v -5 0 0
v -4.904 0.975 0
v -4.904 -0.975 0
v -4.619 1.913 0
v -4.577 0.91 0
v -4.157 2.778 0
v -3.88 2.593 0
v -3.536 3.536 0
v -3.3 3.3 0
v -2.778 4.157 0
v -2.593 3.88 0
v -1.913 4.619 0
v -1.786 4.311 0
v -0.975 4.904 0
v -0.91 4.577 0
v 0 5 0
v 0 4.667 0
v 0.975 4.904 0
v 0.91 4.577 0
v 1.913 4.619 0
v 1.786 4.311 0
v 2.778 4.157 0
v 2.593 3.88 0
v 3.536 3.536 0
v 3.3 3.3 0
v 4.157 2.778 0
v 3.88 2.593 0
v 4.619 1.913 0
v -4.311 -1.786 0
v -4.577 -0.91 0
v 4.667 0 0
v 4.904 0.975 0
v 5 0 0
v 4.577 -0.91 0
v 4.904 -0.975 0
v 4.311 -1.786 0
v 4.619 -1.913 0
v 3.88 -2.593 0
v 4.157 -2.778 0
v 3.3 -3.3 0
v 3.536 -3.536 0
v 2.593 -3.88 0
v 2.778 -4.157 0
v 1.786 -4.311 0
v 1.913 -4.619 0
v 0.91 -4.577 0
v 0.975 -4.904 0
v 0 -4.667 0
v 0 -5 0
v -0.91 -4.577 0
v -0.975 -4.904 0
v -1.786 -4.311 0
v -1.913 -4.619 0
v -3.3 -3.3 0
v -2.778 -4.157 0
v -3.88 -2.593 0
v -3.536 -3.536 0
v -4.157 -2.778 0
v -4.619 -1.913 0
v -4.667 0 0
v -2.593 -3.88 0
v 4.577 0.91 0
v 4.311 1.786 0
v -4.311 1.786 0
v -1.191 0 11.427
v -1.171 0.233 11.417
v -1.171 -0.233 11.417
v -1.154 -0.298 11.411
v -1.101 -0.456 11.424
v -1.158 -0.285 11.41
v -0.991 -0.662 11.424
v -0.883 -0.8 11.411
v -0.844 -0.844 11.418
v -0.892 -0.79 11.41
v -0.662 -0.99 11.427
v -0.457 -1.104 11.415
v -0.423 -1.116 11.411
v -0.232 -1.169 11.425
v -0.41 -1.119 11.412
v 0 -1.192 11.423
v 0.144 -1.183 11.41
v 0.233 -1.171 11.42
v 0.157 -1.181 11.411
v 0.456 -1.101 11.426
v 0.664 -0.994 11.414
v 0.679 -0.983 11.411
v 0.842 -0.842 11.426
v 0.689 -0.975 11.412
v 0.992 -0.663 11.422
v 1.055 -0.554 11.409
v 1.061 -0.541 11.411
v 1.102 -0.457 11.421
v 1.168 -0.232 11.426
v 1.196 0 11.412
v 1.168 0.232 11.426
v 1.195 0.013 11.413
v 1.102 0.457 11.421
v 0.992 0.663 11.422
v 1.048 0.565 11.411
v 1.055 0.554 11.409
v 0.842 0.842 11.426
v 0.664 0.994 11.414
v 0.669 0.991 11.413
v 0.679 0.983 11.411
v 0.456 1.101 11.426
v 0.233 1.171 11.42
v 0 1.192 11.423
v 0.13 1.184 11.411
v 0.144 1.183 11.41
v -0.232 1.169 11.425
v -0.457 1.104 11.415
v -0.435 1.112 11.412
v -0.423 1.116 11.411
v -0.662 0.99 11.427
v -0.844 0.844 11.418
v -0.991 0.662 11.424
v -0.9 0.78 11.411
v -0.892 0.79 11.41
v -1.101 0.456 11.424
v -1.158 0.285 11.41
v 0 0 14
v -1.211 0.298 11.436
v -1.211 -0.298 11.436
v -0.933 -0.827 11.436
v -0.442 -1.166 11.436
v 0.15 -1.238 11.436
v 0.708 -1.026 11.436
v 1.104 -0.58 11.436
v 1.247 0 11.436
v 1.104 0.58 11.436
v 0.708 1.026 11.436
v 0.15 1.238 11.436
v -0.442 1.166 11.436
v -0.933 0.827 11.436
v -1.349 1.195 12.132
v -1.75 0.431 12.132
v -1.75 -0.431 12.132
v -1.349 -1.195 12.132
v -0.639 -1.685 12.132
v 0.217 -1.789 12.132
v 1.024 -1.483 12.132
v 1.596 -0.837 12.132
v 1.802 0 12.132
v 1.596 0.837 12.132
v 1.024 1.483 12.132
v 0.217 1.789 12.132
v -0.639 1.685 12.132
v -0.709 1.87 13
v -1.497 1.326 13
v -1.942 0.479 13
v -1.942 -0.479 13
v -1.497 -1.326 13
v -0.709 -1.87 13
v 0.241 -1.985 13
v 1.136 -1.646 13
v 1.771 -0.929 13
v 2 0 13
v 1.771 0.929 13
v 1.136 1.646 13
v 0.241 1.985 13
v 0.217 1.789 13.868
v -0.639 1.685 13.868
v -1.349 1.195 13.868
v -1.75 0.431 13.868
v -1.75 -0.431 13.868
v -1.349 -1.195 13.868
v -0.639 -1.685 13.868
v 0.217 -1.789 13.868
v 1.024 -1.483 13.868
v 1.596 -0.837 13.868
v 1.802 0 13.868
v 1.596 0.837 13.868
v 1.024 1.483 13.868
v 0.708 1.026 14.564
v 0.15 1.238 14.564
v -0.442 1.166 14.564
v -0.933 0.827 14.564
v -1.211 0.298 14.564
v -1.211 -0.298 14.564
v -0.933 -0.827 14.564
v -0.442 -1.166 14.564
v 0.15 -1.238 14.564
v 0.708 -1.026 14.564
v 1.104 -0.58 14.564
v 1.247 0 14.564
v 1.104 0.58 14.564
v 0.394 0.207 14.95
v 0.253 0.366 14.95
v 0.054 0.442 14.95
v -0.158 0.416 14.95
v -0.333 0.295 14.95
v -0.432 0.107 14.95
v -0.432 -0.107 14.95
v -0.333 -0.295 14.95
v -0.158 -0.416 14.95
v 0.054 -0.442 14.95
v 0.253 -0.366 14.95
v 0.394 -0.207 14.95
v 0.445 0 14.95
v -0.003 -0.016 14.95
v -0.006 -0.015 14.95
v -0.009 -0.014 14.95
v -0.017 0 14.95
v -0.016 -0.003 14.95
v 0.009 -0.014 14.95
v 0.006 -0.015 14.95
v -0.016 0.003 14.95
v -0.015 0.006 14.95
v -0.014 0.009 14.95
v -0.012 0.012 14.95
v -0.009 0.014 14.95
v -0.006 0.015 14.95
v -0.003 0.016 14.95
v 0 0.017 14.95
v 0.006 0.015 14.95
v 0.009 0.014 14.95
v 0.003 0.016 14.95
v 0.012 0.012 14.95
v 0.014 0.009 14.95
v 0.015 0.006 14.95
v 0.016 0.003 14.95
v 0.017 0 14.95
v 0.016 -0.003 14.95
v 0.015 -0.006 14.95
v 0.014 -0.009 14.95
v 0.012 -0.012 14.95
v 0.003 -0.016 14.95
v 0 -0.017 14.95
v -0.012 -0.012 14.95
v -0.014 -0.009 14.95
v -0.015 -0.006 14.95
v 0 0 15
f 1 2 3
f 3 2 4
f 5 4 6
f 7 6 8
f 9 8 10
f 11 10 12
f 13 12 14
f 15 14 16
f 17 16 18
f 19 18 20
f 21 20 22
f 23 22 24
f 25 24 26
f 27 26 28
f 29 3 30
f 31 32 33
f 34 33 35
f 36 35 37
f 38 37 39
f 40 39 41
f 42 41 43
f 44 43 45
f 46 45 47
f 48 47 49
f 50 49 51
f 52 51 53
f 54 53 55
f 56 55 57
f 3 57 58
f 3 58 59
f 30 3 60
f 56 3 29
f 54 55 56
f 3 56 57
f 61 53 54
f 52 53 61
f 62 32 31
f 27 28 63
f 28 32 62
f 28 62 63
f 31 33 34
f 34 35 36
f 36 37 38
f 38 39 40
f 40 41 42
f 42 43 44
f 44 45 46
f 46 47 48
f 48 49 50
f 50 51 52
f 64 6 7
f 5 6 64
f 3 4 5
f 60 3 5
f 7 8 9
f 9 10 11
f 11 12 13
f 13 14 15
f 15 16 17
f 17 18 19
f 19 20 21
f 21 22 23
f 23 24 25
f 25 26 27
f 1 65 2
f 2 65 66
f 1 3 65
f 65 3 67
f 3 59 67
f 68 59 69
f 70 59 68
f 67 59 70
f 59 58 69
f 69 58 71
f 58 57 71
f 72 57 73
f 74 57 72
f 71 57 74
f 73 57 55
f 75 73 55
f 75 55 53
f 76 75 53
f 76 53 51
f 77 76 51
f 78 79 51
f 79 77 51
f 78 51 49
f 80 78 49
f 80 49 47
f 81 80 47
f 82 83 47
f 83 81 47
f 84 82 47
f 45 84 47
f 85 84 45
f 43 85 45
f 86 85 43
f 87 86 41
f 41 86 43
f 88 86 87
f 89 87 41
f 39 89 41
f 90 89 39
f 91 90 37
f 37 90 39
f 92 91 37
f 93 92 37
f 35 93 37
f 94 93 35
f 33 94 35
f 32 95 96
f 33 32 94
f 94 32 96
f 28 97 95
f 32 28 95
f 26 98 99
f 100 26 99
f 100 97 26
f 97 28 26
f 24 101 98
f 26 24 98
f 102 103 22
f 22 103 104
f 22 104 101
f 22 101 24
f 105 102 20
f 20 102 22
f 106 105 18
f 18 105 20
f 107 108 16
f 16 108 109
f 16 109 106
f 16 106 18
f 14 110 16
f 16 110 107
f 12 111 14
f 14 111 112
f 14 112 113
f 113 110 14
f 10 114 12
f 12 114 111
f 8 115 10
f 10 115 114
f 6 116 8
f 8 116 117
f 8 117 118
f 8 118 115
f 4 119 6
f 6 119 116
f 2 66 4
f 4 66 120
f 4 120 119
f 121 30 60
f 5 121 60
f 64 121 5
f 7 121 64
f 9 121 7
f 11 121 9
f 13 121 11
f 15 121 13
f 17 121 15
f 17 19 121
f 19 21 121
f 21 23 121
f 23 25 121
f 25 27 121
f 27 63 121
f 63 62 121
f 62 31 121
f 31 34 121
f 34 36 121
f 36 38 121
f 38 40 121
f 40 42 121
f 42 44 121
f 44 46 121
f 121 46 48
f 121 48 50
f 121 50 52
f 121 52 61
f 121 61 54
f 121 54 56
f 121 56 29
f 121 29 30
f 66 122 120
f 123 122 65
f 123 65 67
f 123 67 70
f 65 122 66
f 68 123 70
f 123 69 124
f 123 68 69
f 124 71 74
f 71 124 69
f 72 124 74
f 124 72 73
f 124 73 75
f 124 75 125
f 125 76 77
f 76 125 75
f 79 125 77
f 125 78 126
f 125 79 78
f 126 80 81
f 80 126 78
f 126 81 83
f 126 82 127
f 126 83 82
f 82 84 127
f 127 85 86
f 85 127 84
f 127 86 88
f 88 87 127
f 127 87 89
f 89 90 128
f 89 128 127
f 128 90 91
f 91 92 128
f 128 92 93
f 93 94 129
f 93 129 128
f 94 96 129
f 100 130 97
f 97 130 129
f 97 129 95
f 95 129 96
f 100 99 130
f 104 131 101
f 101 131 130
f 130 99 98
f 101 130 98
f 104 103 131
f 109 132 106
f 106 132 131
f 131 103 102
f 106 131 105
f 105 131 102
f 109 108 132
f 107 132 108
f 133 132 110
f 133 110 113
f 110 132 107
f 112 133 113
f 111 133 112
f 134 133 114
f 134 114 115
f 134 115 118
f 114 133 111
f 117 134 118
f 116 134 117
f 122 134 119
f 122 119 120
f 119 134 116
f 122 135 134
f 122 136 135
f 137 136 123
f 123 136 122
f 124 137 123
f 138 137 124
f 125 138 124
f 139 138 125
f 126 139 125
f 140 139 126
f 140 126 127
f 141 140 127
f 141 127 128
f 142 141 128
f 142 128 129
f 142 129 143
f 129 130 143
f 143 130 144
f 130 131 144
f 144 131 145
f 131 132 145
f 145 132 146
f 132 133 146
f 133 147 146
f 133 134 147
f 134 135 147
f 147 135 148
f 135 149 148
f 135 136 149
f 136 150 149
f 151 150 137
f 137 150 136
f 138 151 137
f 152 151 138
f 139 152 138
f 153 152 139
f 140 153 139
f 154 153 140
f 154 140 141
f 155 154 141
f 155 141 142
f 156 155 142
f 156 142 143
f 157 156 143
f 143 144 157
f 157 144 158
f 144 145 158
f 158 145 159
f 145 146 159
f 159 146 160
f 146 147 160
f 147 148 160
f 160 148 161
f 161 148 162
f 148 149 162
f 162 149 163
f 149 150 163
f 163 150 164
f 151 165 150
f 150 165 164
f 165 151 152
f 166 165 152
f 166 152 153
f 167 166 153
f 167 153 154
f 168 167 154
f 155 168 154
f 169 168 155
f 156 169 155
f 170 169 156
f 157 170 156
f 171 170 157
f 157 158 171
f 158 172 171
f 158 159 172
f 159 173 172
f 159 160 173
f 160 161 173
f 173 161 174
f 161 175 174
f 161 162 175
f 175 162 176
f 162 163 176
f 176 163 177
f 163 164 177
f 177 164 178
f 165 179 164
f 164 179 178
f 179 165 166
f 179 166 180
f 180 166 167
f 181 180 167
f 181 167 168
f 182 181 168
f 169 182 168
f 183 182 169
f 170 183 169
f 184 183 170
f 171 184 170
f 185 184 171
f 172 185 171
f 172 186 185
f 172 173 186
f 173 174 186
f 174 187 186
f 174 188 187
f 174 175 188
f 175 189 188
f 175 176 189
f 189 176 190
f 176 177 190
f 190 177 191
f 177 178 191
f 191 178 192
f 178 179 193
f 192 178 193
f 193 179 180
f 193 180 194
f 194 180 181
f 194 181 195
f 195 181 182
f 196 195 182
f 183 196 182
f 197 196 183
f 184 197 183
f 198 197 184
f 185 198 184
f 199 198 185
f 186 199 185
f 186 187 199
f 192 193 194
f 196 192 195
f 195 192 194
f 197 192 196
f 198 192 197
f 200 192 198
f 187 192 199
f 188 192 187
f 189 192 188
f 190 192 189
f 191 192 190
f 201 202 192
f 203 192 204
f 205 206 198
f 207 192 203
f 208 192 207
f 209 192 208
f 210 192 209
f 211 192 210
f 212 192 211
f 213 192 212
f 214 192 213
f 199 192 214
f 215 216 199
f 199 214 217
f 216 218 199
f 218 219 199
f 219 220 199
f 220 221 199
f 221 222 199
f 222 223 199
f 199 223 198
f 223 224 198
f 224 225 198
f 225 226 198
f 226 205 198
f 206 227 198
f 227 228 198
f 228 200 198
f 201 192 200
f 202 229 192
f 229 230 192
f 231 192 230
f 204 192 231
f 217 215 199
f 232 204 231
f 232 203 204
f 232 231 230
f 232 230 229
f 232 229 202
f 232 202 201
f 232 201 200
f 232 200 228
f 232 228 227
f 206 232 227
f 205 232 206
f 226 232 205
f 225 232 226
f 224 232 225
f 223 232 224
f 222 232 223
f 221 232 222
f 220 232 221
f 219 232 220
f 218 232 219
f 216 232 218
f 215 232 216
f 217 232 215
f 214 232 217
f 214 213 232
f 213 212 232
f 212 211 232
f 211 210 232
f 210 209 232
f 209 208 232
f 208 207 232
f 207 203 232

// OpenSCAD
$fa = 1;
$fs = 1;

// cube([20, 10, 10]);


difference() {
	union() {
		cylinder(15, 5, 0);
		translate([0, 0, 13]) sphere(2);
	}
	translate([0, 0, -1]) cylinder(15, 5, 0);
}
